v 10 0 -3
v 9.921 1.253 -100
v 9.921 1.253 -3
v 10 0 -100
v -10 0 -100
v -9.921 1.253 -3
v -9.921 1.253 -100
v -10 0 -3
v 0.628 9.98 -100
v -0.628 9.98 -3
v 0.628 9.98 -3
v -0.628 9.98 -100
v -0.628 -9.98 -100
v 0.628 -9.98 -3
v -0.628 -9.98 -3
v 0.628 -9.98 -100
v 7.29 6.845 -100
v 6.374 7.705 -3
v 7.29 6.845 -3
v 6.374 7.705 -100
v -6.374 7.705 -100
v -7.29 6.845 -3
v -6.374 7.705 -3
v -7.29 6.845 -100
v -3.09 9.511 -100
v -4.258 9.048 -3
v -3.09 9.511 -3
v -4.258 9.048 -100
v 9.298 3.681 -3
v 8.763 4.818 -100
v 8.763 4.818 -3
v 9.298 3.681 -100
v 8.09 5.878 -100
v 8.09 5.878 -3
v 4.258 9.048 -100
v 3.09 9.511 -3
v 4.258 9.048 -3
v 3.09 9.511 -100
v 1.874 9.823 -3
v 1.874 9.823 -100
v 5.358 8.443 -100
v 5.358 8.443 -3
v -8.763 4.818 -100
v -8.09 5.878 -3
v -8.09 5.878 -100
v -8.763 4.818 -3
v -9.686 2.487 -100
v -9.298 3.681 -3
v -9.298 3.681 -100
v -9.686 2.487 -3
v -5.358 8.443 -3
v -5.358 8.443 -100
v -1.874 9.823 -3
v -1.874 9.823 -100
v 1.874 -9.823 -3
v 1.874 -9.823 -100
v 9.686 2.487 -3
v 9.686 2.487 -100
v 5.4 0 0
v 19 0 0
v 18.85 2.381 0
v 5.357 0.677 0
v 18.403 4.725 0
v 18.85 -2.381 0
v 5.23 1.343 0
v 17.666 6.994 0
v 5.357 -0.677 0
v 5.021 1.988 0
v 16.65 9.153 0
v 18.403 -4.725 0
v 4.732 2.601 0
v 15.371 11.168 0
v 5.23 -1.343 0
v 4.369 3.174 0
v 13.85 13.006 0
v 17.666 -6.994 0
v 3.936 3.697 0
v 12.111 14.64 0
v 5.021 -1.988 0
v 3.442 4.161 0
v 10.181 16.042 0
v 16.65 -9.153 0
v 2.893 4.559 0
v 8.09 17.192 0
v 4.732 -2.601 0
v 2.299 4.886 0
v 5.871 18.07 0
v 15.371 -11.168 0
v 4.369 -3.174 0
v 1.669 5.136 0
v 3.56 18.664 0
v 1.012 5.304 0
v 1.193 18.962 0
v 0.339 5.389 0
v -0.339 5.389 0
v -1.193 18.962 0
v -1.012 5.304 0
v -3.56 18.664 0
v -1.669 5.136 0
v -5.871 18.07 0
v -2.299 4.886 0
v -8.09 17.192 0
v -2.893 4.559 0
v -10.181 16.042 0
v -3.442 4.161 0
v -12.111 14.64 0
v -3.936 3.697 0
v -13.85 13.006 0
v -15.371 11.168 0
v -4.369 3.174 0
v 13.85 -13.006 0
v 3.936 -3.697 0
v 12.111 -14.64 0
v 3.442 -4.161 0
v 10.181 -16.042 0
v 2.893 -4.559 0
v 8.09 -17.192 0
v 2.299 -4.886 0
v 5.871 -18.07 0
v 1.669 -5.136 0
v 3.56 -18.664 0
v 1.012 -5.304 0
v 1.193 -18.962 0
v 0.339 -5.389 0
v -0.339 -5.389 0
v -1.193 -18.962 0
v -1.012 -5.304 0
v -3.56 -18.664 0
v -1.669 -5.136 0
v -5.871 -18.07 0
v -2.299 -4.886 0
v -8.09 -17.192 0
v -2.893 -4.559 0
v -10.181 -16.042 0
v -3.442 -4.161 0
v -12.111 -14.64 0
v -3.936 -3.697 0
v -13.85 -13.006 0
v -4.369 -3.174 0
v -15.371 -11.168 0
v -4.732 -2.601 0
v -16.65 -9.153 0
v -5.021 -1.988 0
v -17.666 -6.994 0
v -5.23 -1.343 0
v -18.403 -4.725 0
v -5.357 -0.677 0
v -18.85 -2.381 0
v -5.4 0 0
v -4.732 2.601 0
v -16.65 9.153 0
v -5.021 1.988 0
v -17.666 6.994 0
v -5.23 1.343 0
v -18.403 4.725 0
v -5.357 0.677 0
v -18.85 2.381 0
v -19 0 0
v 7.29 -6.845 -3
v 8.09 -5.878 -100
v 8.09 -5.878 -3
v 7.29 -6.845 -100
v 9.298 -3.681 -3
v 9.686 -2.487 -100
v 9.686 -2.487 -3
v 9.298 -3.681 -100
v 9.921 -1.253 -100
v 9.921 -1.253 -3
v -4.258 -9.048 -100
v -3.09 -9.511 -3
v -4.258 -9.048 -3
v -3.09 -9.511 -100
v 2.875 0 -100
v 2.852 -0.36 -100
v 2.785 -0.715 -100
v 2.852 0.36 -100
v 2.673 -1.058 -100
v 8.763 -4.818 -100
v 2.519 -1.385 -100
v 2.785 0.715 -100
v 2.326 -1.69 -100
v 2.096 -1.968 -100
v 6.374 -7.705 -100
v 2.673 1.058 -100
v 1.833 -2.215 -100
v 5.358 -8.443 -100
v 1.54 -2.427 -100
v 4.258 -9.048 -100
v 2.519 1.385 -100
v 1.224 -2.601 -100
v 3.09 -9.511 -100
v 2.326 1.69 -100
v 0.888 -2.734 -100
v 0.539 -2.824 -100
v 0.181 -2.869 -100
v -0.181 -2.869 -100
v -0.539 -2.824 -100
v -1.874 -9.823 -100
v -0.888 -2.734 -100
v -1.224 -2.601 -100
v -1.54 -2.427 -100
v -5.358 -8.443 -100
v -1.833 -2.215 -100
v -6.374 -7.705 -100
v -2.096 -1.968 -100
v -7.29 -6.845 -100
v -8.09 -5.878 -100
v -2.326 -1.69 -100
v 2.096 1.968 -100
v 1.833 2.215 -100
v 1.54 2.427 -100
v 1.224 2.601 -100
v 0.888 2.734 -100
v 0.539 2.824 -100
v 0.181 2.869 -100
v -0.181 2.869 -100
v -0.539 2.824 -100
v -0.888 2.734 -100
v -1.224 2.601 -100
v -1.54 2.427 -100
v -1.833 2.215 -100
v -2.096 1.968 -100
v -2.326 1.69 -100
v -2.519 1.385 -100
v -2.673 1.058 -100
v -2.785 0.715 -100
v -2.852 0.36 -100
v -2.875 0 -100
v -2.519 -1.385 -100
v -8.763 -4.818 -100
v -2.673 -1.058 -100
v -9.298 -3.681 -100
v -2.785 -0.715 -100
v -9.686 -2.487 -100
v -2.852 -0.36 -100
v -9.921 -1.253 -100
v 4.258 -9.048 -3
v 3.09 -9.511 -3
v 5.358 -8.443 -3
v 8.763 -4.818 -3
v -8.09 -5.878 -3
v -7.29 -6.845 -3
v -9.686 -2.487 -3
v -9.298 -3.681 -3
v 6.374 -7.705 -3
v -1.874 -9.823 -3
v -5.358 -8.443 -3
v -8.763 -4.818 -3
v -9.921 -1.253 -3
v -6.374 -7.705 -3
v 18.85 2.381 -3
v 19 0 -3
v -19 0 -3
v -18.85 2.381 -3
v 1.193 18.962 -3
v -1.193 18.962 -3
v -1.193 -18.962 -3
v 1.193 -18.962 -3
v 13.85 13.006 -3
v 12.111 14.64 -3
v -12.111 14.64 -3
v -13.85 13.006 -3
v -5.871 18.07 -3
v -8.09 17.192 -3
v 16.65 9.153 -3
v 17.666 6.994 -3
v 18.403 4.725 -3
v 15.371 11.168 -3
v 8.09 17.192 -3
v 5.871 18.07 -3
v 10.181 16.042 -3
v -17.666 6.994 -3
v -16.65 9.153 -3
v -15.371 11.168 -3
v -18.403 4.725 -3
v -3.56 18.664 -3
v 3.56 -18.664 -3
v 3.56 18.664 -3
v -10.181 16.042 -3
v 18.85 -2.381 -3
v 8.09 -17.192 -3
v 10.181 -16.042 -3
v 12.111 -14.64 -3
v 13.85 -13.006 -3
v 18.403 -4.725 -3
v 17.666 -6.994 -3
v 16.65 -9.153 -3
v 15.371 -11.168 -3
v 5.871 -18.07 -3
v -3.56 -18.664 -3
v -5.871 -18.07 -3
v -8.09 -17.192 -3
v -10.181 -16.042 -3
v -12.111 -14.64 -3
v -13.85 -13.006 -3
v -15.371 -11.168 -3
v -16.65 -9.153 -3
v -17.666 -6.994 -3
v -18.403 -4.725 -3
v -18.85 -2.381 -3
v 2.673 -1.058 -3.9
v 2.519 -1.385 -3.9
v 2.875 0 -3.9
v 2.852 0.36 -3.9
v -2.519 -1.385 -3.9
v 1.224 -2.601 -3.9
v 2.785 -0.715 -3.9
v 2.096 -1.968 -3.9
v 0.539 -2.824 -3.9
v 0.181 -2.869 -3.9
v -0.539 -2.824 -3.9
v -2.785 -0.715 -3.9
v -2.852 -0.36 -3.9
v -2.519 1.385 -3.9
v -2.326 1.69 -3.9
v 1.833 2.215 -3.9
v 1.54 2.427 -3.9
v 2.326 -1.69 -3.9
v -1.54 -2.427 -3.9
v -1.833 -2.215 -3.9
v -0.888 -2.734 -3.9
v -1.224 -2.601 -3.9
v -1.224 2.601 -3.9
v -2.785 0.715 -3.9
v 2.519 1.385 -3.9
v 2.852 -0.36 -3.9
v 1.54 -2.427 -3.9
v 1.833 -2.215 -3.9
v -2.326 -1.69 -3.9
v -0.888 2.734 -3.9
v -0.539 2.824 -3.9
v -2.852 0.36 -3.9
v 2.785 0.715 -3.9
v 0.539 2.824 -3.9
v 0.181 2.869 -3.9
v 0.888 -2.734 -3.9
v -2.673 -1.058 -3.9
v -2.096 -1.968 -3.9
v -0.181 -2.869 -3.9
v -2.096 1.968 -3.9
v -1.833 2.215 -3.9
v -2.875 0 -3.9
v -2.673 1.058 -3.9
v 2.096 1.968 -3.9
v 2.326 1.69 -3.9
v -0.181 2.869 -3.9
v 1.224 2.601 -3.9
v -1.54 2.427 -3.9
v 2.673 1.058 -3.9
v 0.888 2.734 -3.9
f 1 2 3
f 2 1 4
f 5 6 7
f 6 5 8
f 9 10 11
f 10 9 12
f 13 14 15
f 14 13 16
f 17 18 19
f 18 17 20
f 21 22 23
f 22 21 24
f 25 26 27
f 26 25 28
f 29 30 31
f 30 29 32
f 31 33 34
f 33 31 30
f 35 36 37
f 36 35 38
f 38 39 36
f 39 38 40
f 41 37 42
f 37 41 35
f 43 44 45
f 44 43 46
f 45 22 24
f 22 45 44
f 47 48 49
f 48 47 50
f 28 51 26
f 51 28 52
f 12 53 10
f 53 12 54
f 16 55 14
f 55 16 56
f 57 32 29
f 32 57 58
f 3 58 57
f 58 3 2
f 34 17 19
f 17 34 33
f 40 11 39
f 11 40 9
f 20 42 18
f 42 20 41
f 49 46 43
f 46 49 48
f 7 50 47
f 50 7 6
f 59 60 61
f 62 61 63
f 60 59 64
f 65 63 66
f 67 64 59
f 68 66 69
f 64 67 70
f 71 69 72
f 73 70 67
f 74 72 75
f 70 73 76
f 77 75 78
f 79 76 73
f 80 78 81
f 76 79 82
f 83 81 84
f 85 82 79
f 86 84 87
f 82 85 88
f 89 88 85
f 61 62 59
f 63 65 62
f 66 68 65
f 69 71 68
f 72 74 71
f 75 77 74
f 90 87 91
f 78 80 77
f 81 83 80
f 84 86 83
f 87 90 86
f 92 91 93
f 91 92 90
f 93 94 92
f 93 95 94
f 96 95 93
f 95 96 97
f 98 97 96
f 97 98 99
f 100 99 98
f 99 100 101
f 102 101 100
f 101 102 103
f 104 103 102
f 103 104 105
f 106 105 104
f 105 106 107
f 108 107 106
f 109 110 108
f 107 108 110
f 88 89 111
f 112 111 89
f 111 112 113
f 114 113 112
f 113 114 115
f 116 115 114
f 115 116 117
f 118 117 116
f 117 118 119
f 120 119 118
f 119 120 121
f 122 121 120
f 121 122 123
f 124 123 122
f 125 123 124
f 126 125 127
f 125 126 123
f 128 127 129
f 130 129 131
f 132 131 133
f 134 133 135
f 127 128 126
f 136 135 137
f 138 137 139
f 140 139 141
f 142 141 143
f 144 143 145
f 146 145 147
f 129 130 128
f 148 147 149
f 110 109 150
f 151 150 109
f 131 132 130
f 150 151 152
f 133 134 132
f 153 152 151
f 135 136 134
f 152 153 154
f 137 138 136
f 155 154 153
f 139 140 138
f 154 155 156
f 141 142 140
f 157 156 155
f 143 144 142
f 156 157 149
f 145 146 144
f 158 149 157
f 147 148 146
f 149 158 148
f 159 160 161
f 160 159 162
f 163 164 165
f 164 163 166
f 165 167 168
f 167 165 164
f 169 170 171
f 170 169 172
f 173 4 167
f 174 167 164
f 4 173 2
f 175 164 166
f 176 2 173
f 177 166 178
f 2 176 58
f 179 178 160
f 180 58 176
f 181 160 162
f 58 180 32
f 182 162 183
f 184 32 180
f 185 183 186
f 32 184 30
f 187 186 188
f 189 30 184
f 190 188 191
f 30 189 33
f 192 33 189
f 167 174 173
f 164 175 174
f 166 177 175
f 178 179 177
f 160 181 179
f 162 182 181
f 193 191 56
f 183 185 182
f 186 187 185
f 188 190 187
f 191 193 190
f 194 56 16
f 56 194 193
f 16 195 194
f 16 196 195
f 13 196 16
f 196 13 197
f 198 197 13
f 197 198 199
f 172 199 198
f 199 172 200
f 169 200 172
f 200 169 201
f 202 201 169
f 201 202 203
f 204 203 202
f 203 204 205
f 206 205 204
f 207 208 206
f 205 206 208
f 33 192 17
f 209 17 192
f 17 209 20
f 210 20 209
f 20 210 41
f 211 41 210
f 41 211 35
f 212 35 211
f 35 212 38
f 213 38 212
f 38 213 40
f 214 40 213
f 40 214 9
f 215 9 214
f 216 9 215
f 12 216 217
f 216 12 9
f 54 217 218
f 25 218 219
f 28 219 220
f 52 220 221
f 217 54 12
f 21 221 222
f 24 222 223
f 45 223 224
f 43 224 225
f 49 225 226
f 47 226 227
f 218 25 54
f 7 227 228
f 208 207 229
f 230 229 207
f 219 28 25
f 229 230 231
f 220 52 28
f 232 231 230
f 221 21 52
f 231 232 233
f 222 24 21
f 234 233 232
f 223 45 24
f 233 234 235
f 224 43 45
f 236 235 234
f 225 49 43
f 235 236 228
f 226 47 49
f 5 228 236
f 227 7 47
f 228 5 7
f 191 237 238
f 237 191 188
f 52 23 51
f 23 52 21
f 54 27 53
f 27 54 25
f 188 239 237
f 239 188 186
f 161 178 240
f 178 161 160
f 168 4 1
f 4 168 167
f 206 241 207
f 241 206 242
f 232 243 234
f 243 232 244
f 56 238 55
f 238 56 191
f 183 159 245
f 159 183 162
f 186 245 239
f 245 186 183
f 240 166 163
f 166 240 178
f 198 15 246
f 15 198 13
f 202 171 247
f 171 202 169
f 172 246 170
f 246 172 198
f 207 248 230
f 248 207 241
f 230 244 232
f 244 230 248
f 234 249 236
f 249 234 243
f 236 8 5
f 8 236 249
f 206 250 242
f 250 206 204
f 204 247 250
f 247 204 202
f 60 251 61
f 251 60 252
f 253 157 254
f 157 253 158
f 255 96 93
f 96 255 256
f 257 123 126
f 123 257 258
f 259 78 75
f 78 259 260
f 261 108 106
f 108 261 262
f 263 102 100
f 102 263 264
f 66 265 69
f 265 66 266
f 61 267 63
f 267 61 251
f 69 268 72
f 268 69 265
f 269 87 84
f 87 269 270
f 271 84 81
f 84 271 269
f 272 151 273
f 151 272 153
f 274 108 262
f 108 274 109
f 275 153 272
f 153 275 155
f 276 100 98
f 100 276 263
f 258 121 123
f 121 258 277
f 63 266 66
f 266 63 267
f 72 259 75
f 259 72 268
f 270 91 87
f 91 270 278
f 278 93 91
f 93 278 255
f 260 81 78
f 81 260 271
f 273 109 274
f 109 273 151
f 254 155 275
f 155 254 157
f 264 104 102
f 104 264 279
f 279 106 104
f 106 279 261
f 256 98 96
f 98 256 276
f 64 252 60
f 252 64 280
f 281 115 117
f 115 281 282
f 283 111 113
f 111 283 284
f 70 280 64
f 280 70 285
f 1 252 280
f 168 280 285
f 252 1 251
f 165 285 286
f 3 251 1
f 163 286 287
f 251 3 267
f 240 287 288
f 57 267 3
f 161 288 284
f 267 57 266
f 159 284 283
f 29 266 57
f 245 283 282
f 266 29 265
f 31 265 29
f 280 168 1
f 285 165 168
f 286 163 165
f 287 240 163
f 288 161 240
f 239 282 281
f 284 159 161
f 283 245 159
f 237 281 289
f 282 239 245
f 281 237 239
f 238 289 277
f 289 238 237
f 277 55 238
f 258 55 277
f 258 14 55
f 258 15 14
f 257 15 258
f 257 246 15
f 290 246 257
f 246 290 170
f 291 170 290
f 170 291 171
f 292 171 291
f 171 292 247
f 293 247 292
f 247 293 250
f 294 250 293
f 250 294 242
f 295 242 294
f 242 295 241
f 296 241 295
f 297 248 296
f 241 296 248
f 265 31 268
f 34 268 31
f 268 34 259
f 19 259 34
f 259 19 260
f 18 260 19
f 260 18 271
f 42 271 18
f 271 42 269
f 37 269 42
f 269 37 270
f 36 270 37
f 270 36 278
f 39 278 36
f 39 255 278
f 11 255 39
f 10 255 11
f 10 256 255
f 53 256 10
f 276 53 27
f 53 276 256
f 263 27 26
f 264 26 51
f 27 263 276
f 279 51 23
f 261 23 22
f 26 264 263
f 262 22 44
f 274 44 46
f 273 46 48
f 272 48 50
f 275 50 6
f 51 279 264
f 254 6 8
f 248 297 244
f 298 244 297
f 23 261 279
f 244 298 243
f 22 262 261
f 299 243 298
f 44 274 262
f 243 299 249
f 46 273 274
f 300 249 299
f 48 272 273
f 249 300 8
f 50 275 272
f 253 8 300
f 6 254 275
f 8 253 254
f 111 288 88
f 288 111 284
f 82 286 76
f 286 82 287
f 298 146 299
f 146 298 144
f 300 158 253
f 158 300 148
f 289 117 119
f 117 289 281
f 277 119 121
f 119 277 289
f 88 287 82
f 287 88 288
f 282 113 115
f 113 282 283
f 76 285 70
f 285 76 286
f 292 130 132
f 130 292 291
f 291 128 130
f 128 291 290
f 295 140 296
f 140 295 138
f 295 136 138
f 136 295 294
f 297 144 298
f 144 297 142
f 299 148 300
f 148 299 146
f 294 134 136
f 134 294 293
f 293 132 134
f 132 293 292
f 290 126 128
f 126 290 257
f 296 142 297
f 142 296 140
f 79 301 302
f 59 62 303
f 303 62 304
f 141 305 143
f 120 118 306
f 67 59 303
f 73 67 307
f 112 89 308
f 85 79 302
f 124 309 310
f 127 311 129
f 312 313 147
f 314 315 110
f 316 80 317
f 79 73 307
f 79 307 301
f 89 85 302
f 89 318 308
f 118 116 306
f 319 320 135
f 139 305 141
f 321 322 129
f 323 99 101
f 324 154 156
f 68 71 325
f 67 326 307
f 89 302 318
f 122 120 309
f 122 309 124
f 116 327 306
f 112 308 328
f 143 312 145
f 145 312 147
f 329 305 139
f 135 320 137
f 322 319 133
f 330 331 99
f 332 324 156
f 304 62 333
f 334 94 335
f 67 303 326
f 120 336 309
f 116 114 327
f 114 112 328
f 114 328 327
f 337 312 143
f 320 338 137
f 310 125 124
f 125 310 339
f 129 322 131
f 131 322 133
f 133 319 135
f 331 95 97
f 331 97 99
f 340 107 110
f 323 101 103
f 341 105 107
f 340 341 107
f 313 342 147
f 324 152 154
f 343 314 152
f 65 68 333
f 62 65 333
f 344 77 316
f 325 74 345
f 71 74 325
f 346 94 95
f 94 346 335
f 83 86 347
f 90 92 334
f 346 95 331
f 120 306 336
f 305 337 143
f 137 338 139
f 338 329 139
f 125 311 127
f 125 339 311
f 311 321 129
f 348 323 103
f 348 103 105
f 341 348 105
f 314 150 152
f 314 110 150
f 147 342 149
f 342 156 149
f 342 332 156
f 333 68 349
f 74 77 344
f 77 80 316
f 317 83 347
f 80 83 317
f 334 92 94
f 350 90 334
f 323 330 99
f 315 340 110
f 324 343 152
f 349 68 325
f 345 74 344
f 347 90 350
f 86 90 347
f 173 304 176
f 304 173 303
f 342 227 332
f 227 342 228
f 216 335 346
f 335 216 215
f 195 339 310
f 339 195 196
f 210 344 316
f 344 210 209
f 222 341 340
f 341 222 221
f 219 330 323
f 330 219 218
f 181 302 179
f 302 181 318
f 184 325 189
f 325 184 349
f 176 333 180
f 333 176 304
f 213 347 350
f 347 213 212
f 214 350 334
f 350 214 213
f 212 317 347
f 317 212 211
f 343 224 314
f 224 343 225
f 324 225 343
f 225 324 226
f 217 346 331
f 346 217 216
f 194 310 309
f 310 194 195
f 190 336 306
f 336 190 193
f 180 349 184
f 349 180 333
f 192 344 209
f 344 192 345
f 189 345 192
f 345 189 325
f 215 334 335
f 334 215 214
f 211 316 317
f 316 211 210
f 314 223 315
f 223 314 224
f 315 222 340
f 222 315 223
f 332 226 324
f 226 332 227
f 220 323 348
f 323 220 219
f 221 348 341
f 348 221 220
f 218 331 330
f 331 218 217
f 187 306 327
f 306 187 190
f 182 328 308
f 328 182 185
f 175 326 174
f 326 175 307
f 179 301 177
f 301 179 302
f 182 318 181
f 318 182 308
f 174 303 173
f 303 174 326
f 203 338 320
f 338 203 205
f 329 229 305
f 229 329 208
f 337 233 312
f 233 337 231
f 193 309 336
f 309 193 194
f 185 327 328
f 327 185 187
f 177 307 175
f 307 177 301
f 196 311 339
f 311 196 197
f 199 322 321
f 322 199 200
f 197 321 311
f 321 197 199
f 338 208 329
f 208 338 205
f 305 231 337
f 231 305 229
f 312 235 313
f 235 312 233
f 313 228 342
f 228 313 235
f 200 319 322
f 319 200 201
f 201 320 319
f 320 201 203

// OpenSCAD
$fn = 50;


difference() {
	union() {
		translate(v = [0, 0, -100.0000000000]) {
			cylinder(h = 100, r = 10.0000000000);
		}
		translate(v = [0, 0, -3.0000000000]) {
			cylinder(h = 3, r = 19.0000000000);
		}
	}
	union() {
		translate(v = [0, 0, 0]) {
			rotate(a = [0, 0, 0]) {
				difference() {
					union() {
						#translate(v = [0, 0, -100.0000000000]) {
							cylinder(h = 100, r = 2.6000000000);
						}
						#translate(v = [0, 0, -3.9000000000]) {
							cylinder(h = 3.9000000000, r = 10.0000000000, r1 = 2.8750000000, r2 = 5.4000000000);
						}
						#translate(v = [0, 0, -100.0000000000]) {
							cylinder(h = 100, r = 2.8750000000);
						}
						#translate(v = [0, 0, -100.0000000000]) {
							cylinder(h = 100, r = 2.6000000000);
						}
					}
					union();
				}
			}
		}
	}
}
